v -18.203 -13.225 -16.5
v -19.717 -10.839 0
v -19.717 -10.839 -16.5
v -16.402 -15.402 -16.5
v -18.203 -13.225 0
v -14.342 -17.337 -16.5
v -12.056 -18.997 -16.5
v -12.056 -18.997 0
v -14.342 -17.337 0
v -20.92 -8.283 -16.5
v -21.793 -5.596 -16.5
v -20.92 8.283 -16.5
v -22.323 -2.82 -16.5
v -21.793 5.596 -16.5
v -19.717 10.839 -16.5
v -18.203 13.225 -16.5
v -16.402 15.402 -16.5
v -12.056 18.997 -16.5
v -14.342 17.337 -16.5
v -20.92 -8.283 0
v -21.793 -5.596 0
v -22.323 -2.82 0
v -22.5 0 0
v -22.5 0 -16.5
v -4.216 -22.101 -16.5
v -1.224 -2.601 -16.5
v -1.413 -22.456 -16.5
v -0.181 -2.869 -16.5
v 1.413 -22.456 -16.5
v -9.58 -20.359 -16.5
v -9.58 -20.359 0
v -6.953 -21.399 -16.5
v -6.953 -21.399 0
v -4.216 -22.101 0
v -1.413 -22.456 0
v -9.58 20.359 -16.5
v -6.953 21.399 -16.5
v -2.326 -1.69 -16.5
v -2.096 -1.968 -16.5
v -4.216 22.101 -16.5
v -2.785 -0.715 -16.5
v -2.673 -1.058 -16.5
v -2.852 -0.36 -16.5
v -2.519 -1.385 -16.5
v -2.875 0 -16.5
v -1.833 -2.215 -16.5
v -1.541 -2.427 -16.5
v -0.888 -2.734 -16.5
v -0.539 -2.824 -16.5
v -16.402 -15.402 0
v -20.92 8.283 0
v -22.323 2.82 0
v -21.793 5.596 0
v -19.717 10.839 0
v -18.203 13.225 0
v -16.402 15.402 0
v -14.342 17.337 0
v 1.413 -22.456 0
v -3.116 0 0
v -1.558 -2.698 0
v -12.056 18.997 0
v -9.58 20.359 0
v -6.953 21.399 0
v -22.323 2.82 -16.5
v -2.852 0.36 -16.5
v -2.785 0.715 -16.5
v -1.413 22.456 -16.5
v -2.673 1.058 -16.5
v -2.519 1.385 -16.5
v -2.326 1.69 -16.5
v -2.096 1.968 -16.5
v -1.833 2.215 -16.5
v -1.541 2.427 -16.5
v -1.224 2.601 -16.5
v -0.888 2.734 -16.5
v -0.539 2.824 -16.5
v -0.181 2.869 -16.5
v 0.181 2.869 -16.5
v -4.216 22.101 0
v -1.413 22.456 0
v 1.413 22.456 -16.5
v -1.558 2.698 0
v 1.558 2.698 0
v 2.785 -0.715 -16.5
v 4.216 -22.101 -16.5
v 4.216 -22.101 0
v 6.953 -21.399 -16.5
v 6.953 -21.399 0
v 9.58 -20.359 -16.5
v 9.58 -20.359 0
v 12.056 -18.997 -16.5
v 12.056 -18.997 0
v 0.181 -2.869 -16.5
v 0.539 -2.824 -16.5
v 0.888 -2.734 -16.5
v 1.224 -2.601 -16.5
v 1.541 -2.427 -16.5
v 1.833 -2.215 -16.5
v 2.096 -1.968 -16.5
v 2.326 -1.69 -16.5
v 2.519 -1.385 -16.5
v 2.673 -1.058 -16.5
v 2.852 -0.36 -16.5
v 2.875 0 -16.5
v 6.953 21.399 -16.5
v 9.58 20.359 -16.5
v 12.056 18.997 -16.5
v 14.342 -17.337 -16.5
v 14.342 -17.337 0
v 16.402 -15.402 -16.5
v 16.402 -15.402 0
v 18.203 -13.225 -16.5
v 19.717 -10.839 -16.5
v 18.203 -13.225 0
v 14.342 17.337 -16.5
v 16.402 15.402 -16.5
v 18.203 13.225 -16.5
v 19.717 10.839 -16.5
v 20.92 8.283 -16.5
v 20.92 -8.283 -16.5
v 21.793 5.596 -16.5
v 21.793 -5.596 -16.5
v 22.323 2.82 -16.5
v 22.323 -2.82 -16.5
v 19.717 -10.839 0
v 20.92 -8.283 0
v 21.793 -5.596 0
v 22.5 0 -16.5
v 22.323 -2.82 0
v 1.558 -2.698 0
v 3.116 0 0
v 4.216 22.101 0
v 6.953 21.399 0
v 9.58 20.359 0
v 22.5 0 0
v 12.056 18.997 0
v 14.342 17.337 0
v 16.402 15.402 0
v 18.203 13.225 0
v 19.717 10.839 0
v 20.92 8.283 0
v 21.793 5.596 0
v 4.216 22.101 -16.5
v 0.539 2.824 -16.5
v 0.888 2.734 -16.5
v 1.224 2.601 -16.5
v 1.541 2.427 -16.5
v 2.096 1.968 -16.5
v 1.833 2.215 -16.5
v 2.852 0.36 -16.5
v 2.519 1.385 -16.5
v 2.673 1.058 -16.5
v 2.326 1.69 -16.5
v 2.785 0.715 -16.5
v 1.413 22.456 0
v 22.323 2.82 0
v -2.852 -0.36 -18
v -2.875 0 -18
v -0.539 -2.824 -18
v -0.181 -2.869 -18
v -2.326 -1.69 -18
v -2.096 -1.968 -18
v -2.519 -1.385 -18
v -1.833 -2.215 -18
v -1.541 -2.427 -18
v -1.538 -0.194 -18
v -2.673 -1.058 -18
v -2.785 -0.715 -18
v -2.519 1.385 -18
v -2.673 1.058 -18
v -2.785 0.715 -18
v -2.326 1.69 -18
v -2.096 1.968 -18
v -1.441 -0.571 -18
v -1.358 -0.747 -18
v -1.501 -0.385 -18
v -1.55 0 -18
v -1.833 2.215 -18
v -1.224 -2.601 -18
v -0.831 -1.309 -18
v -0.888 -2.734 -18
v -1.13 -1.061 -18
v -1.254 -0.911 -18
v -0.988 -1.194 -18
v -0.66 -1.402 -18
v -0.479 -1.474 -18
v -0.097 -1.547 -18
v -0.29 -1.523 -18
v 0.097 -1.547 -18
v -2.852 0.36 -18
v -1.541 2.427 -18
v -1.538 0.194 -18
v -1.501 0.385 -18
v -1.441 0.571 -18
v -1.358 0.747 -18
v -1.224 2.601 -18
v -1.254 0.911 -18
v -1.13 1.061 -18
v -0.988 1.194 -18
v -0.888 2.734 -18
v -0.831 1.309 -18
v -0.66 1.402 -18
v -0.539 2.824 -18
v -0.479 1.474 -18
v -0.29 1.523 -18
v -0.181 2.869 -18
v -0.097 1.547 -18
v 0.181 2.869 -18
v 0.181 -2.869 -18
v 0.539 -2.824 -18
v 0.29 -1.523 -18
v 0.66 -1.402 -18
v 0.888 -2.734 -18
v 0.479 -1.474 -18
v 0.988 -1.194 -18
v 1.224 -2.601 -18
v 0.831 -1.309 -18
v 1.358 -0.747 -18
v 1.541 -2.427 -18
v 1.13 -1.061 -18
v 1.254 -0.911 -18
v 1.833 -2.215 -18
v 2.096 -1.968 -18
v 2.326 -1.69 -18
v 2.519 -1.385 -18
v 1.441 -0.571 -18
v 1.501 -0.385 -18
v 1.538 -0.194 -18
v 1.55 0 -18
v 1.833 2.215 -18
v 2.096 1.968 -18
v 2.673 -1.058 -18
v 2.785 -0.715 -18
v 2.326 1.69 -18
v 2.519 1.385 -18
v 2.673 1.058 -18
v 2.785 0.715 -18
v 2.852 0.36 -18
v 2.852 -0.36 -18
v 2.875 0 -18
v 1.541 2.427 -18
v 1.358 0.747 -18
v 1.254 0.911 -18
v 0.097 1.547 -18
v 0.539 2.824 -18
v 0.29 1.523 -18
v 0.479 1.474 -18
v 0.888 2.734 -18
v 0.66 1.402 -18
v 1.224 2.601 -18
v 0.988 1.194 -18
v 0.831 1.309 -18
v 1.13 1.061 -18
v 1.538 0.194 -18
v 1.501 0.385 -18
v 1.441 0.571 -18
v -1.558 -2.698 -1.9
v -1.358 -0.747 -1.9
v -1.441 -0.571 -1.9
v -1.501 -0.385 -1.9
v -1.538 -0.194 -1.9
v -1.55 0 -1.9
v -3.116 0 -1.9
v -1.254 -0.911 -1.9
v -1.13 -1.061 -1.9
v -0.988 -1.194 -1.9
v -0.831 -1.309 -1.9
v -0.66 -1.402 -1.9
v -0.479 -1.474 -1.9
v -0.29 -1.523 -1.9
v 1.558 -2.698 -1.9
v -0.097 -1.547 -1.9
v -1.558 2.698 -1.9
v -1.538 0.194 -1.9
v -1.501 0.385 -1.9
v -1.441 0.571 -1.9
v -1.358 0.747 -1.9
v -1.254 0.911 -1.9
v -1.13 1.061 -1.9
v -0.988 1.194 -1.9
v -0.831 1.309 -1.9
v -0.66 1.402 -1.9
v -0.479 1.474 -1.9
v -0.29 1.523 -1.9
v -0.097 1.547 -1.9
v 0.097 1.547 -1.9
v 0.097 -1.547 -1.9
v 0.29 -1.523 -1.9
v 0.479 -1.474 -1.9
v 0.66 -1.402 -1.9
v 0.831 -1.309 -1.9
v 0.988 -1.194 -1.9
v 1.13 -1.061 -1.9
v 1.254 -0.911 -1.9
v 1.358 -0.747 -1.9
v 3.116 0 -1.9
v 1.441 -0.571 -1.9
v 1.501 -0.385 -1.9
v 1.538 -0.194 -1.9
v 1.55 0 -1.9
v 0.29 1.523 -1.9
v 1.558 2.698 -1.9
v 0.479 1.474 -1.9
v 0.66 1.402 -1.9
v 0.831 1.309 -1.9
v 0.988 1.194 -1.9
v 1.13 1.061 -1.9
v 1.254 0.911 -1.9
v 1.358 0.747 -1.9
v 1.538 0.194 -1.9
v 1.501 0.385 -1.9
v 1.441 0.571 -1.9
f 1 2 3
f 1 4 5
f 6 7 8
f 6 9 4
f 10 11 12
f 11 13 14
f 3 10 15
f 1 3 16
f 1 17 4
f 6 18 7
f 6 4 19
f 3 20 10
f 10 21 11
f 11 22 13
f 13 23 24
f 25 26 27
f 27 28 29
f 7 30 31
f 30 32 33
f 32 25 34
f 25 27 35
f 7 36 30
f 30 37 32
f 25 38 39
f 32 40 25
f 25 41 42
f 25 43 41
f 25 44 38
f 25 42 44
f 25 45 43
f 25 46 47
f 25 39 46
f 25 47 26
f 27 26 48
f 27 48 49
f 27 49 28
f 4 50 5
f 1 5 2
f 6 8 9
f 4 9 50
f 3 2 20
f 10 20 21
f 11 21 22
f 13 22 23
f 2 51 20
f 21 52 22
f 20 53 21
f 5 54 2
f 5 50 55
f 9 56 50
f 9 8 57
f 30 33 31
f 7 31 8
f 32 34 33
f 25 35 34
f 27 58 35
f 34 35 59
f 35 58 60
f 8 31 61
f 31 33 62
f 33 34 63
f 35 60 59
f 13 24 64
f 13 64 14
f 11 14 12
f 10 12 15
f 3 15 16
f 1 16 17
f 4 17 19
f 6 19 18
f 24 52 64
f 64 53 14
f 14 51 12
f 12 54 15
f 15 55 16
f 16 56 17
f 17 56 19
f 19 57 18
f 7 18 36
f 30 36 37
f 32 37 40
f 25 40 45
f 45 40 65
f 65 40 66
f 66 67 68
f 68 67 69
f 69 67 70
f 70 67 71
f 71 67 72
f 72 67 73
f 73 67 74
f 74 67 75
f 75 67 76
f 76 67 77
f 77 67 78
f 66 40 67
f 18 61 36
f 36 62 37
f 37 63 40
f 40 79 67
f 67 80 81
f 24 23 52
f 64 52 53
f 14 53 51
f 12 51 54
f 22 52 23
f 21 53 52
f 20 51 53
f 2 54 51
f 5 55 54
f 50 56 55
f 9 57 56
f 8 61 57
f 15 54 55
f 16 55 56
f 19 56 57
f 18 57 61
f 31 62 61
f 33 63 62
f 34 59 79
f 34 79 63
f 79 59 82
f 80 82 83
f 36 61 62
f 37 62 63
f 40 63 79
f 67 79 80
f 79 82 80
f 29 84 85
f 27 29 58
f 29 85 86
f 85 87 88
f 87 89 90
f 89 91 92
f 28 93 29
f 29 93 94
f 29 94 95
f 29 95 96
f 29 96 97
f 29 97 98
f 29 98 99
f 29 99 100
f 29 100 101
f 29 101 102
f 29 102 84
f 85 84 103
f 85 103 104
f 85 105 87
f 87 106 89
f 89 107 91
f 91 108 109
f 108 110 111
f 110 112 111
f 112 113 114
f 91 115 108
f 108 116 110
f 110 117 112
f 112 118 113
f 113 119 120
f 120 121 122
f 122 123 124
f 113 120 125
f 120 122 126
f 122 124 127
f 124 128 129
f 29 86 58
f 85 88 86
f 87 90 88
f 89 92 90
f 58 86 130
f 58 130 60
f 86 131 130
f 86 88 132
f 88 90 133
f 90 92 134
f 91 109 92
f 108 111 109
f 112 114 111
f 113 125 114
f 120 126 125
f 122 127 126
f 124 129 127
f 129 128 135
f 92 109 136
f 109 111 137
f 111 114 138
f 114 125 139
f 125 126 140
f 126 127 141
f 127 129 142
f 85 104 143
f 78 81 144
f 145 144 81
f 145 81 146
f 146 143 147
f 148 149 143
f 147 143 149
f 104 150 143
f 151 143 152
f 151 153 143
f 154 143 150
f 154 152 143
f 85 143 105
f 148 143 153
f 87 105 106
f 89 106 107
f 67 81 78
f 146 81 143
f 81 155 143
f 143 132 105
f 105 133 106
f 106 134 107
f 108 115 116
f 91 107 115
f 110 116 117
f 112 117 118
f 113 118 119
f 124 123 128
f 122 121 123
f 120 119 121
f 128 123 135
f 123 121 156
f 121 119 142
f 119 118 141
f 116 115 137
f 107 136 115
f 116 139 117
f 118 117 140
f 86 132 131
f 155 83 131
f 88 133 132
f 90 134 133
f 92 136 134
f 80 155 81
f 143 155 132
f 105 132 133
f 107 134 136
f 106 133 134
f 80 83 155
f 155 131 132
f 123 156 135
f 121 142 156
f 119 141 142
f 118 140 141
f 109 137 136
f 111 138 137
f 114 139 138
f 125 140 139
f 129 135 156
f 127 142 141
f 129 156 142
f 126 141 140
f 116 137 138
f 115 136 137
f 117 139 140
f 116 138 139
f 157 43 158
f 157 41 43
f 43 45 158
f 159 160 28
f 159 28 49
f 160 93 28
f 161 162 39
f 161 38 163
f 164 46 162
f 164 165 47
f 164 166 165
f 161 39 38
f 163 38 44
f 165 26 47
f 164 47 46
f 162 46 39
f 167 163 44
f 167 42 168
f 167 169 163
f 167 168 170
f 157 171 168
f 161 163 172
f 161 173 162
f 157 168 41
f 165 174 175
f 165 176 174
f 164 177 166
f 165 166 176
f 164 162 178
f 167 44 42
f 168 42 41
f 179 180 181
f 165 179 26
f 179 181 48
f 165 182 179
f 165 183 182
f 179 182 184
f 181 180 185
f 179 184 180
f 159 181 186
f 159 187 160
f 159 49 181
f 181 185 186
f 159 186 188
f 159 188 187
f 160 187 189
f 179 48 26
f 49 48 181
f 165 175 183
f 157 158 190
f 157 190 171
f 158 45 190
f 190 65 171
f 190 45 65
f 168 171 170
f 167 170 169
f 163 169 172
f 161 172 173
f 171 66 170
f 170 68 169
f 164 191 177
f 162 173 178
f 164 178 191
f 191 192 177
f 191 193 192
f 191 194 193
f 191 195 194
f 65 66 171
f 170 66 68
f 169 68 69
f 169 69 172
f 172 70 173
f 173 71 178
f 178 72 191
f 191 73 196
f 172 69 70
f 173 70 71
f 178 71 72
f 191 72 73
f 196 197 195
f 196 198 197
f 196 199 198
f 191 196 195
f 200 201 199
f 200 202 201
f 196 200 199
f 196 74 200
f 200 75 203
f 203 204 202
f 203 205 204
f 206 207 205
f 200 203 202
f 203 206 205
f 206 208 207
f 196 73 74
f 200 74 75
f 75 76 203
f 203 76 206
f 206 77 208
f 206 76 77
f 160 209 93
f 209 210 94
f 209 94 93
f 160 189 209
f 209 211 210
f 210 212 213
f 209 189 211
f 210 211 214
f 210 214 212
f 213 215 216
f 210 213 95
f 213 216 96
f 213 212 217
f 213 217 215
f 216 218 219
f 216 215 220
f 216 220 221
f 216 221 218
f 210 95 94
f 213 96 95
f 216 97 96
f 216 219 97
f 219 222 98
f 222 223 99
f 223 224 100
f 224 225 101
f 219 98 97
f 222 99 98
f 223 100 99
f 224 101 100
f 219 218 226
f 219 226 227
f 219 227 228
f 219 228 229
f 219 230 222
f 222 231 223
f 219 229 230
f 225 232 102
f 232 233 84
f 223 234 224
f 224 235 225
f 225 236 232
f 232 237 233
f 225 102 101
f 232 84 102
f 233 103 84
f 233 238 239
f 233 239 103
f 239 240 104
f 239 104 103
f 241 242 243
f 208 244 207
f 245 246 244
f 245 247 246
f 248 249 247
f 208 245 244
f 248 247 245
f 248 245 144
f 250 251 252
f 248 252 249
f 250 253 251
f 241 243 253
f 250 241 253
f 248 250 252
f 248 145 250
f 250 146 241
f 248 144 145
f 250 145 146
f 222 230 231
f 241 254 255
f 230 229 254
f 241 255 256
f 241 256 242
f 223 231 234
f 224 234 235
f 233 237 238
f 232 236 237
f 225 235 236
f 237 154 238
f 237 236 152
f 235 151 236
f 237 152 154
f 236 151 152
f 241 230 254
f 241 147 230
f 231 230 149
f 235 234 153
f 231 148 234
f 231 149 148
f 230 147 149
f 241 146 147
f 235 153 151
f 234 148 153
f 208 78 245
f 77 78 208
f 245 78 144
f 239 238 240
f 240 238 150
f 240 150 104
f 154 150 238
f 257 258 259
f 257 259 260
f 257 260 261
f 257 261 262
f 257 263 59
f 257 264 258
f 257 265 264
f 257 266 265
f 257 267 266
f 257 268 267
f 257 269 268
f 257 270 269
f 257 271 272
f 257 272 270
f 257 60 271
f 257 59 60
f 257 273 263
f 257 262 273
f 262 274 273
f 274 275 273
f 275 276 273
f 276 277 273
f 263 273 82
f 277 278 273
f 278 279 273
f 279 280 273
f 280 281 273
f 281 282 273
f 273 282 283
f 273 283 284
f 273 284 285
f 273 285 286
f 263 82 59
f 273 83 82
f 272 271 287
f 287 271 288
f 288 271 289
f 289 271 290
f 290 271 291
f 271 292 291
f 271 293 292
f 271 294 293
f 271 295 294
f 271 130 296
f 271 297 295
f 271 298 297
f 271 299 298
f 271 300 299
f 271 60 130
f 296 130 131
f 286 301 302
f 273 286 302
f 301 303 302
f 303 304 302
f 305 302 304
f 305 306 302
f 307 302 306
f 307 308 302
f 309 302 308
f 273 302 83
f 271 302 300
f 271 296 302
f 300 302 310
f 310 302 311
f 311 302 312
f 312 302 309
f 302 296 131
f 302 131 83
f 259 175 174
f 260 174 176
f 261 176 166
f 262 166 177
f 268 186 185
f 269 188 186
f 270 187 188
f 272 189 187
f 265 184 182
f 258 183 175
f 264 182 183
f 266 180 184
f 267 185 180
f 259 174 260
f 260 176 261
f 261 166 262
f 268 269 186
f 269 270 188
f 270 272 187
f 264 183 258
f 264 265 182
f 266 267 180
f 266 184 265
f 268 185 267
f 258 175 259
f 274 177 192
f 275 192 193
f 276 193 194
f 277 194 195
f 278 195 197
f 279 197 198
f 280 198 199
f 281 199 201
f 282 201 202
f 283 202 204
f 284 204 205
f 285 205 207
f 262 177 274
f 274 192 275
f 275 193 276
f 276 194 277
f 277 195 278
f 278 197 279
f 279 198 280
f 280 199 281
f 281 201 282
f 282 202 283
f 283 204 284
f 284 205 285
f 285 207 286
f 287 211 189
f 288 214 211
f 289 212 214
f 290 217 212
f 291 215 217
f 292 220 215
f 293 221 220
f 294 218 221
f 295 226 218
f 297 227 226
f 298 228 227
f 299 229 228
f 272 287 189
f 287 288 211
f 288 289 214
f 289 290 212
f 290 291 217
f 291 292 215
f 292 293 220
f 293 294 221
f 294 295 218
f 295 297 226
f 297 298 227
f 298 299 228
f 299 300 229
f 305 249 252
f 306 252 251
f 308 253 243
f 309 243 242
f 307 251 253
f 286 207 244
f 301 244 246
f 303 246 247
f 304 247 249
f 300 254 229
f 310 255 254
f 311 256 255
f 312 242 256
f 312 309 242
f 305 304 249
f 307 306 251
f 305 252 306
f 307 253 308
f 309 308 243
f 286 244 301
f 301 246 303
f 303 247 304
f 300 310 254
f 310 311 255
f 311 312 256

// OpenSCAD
$fn = 50;


difference() {
	union() {
		translate(v = [0, 0, -16.5000000000]) {
			cylinder(h = 16.5000000000, r = 22.5000000000);
		}
		#translate(v = [0, 0, -18.0000000000]) {
			cylinder(h = 18, r = 2.8750000000);
		}
	}
	union() {
		translate(v = [0, 0, 0]) {
			rotate(a = [0, 0, 0]) {
				difference() {
					union() {
						translate(v = [0, 0, -1.9000000000]) {
							linear_extrude(height = 1.9000000000) {
								polygon(points = [[3.1158000000, 0.0000000000], [1.5579000000, 2.6983619531], [-1.5579000000, 2.6983619531], [-3.1158000000, 0.0000000000], [-1.5579000000, -2.6983619531], [1.5579000000, -2.6983619531]]);
							}
						}
					}
					union();
				}
			}
		}
		#translate(v = [0, 0, -100.0000000000]) {
			cylinder(h = 200, r = 1.5500000000);
		}
	}
}
